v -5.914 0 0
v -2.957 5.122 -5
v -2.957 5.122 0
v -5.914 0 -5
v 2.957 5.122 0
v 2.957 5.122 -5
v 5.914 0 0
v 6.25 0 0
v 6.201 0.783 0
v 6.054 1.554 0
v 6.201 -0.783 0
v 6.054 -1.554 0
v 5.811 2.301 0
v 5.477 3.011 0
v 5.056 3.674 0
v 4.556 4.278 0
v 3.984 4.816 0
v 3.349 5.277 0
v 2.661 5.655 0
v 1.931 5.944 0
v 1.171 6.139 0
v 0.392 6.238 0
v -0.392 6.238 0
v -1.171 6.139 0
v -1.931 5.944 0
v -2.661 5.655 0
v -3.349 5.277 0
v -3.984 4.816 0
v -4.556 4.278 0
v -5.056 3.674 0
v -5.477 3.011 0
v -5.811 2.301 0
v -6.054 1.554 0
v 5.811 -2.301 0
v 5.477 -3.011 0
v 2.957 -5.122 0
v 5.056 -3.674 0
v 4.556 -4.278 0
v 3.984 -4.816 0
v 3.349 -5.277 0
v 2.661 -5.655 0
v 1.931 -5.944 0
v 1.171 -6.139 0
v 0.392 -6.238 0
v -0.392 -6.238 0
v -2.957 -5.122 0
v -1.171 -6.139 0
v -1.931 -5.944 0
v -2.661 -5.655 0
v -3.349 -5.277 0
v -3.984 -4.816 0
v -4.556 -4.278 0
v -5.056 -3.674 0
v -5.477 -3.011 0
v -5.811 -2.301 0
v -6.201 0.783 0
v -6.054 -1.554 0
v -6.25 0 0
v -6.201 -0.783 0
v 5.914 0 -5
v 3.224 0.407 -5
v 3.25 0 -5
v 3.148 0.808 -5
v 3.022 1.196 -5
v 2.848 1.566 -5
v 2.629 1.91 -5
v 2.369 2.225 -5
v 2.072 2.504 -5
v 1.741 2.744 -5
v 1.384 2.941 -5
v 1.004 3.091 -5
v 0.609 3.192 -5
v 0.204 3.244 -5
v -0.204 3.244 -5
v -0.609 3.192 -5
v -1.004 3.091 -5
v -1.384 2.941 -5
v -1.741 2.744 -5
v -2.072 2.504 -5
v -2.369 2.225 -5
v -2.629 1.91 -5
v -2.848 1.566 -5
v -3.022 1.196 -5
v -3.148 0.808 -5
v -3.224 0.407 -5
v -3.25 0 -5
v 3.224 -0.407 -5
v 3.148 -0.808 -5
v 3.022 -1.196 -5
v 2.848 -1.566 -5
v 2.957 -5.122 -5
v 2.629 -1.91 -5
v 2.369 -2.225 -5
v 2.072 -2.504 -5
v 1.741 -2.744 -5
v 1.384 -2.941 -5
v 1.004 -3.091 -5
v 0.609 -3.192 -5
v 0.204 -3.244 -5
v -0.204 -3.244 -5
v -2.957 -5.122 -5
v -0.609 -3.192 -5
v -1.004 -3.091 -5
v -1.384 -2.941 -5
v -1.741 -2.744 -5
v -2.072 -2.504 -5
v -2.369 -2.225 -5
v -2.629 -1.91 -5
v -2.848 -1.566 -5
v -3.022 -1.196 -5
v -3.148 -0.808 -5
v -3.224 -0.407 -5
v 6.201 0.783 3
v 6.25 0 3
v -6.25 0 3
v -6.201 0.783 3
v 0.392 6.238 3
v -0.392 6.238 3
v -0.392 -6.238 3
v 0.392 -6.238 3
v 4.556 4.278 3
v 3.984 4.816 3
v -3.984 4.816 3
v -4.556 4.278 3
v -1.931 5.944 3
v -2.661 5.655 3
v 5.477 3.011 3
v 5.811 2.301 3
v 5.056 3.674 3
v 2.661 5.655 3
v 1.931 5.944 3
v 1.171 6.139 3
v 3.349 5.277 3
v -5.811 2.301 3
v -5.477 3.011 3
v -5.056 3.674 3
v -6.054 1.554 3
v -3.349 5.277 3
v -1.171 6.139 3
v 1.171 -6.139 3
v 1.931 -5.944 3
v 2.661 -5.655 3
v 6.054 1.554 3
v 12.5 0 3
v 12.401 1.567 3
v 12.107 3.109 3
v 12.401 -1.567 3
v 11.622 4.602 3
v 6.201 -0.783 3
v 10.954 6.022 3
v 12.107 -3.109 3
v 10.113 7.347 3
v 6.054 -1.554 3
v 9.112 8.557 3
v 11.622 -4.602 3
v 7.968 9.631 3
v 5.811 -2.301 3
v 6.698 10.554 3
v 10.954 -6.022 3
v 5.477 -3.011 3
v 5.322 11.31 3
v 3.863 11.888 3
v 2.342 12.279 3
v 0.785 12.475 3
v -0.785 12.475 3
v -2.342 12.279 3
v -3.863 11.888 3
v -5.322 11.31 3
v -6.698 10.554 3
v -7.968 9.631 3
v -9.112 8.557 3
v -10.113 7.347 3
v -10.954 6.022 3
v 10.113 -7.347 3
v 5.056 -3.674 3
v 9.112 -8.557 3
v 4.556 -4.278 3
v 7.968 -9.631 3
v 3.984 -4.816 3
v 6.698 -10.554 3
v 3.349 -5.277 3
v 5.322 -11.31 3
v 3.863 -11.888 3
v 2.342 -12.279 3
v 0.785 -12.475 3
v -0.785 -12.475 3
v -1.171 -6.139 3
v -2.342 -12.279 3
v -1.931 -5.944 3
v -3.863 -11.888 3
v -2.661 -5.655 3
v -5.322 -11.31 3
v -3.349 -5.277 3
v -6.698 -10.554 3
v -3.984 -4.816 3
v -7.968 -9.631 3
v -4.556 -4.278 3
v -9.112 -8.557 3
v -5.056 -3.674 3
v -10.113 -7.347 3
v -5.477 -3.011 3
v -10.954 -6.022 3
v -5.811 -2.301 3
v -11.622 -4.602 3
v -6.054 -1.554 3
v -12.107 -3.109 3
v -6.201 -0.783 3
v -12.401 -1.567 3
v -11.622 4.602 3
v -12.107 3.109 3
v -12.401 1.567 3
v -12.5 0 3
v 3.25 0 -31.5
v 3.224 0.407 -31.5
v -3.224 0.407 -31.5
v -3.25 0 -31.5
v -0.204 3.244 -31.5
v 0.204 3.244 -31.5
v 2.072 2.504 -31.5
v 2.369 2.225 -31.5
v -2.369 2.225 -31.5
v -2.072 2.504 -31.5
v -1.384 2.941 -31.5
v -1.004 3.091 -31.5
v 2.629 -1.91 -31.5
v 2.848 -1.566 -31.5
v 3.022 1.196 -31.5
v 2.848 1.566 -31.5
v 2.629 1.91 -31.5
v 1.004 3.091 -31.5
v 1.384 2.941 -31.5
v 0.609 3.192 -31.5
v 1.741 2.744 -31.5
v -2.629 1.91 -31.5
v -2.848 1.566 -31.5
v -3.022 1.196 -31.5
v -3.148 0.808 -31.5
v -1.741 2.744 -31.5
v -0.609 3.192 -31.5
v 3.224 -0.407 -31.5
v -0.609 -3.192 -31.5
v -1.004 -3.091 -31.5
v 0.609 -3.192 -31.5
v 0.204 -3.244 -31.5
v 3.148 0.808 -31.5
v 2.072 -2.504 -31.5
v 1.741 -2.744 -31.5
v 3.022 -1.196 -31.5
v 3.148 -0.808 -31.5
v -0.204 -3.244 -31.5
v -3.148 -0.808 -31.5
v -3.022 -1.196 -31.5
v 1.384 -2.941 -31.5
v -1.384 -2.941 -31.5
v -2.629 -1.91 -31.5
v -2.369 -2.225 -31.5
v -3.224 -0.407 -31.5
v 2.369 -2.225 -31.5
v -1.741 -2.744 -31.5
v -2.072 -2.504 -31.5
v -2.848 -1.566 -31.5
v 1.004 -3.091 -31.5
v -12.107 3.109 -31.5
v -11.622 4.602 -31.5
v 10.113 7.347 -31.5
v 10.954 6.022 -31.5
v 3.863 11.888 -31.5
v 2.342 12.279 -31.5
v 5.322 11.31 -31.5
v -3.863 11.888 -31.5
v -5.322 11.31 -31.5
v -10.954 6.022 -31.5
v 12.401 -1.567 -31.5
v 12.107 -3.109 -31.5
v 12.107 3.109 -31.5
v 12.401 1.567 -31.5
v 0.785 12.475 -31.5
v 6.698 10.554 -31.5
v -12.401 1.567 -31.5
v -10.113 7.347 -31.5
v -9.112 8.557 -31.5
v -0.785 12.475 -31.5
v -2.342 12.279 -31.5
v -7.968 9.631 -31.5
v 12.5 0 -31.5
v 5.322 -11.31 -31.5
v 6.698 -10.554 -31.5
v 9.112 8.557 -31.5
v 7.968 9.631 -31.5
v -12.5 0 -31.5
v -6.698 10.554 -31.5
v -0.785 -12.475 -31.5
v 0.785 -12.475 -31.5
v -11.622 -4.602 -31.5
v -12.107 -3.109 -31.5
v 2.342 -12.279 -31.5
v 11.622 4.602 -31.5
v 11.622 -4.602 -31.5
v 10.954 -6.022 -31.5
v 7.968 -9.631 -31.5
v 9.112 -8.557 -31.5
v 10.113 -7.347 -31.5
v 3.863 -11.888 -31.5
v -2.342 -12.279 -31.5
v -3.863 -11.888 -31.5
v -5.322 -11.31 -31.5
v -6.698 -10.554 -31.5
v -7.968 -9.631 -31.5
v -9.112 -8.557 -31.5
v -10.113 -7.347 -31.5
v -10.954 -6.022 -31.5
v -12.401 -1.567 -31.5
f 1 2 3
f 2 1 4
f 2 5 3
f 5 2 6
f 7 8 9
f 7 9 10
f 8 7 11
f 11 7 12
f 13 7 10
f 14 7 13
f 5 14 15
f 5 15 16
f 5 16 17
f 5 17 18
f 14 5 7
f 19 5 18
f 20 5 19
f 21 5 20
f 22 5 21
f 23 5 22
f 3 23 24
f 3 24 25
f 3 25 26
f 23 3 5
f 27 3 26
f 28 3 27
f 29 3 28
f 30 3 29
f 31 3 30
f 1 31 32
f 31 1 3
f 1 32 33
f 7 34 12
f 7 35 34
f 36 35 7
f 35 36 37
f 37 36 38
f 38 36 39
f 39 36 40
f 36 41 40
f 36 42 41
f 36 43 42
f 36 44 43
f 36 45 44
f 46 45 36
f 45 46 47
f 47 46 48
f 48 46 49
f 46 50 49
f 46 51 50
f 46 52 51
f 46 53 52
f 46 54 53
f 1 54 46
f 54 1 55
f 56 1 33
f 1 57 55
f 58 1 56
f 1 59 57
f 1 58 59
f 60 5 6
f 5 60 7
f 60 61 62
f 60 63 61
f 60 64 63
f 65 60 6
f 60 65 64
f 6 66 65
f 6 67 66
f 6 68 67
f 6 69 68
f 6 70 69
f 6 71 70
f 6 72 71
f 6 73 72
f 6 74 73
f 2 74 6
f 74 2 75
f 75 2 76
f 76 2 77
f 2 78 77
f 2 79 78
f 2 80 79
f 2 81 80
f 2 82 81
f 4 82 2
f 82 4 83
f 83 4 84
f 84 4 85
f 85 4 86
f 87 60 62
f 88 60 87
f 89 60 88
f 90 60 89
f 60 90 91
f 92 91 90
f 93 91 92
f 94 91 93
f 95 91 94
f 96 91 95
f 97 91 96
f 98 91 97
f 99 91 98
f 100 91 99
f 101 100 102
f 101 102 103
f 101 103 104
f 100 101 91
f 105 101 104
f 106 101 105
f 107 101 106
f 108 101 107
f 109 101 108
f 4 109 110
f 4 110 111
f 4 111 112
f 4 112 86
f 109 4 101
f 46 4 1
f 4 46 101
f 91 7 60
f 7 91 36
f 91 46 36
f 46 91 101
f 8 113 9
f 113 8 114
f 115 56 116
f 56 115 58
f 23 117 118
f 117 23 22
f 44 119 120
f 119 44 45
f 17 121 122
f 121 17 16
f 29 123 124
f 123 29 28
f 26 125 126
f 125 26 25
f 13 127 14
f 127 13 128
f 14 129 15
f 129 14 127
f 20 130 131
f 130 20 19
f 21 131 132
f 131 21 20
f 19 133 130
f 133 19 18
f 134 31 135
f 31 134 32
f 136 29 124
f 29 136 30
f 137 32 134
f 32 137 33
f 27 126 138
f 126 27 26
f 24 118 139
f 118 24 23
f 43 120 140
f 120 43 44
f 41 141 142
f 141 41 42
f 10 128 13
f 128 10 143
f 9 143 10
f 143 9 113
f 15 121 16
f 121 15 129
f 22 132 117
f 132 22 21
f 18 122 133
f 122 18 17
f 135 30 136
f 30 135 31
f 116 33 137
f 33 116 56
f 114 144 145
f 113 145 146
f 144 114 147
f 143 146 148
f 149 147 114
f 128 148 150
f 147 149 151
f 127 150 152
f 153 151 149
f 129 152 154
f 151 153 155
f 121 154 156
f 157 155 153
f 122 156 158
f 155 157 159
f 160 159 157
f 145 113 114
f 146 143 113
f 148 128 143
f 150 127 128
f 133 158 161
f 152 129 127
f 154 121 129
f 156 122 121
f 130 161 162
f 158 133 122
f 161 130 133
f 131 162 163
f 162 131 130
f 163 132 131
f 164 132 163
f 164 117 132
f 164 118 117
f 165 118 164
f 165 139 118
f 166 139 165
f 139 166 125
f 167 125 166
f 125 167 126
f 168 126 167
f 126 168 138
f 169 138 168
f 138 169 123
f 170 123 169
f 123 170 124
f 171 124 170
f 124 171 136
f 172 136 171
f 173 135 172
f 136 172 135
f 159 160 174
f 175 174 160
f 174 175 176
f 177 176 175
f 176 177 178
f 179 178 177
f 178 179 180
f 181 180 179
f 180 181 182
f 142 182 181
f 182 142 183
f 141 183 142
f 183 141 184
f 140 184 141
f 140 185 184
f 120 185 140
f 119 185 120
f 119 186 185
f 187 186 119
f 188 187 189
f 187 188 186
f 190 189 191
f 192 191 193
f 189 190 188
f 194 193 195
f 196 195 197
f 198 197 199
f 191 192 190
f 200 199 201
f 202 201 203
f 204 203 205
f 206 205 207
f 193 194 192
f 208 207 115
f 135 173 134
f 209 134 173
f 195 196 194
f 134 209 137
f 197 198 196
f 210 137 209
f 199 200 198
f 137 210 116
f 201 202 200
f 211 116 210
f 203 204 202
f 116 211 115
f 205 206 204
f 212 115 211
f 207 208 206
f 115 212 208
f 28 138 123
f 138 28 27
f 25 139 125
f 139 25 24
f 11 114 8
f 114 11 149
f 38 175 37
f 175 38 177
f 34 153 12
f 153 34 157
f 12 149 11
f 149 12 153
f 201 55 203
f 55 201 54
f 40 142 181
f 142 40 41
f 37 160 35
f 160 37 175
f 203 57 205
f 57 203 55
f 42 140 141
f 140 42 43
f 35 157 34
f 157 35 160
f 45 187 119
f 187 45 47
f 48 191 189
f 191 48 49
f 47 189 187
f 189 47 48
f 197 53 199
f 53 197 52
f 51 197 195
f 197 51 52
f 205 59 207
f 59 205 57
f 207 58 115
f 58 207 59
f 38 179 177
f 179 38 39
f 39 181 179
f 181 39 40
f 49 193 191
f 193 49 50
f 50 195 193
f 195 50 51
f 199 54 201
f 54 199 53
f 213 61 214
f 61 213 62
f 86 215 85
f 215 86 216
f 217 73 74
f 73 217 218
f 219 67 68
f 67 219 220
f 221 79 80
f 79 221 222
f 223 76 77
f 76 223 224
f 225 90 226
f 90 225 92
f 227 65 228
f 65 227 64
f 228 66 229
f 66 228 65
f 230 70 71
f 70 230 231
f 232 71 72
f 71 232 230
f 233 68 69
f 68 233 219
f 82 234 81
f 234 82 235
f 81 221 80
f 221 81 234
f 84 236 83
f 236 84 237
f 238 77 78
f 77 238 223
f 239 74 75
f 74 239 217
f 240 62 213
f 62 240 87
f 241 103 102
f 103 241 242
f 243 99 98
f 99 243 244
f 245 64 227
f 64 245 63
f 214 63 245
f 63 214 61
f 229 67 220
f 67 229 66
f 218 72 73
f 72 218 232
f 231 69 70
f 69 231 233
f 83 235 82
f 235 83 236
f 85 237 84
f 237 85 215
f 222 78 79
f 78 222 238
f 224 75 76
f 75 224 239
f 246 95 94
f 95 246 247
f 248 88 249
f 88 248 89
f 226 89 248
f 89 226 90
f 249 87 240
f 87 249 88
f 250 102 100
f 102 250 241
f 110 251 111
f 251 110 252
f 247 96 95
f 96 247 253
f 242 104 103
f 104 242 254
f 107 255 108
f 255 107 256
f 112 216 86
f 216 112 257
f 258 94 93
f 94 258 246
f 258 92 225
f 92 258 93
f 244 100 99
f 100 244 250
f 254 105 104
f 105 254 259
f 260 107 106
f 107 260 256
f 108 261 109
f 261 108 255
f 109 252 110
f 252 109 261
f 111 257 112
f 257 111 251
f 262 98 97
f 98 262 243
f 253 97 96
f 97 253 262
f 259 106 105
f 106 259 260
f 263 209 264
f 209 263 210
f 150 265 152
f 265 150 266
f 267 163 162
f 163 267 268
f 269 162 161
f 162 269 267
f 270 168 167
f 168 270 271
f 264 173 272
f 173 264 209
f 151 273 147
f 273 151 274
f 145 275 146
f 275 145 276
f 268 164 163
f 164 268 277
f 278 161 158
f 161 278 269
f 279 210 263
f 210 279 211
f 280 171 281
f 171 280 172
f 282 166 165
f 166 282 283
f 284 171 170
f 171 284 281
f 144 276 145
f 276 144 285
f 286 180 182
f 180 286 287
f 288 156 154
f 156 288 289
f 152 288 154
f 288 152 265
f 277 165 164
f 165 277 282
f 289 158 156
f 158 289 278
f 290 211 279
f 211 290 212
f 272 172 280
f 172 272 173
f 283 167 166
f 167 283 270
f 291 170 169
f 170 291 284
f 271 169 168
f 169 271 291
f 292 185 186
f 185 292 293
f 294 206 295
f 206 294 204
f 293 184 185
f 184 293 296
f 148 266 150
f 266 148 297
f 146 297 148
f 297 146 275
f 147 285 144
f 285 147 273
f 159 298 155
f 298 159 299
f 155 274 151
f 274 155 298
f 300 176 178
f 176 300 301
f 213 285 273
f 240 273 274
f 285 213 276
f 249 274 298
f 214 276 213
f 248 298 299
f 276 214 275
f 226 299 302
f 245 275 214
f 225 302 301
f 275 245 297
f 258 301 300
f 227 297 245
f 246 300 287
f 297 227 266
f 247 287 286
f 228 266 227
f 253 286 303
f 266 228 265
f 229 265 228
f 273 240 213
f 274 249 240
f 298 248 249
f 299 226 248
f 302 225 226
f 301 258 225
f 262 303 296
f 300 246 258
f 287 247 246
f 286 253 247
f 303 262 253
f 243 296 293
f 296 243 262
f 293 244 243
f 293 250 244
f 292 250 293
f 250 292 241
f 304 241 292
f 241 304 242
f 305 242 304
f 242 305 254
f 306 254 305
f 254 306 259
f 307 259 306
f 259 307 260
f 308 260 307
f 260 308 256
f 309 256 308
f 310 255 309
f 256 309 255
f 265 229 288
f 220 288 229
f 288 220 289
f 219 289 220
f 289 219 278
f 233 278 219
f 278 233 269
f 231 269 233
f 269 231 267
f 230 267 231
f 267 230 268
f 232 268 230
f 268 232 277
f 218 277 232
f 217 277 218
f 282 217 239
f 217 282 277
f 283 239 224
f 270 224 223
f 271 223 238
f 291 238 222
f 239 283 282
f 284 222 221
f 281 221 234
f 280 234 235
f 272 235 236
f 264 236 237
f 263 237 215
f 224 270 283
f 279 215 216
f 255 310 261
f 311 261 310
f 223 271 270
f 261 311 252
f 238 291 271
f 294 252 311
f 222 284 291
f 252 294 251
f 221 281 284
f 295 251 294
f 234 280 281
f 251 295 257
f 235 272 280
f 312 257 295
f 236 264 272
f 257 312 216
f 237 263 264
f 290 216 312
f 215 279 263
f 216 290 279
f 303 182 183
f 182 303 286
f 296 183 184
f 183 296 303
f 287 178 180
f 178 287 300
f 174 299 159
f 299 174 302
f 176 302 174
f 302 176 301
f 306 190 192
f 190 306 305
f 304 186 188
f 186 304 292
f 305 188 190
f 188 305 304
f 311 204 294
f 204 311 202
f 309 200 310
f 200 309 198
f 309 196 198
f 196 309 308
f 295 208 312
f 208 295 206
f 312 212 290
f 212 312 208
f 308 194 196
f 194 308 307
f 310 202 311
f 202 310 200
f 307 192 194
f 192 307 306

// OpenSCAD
$fn = 50;

difference() {
	union() {
		translate(v = [0, 0, -31.5]) {
			cylinder(h = 34.5, r = 12.5);
		}
	}
	union() {
		translate(v = [0, 0, 0]) {
			rotate(a = [0, 0, 0]) {
				difference() {
					union() {
						translate(v = [0, 0, -5]) {
							linear_extrude(height = 5) {
								polygon(points = [[5.914249999999999, 0.0], [2.957125, 5.1218907443321156], [-2.9571249999999982, 5.1218907443321156], [-5.914249999999999, 7.242867331857232e-16], [-2.9571250000000022, -5.121890744332115], [2.9571249999999956, -5.121890744332118]]);
							}
						}
					}
					union();
				}
			}
		}
		#cylinder(h = 3, r = 6.25);
		#translate(v = [0, 0, -100.0]) {
			cylinder(h = 200, r = 3.25);
		}
	}
}
